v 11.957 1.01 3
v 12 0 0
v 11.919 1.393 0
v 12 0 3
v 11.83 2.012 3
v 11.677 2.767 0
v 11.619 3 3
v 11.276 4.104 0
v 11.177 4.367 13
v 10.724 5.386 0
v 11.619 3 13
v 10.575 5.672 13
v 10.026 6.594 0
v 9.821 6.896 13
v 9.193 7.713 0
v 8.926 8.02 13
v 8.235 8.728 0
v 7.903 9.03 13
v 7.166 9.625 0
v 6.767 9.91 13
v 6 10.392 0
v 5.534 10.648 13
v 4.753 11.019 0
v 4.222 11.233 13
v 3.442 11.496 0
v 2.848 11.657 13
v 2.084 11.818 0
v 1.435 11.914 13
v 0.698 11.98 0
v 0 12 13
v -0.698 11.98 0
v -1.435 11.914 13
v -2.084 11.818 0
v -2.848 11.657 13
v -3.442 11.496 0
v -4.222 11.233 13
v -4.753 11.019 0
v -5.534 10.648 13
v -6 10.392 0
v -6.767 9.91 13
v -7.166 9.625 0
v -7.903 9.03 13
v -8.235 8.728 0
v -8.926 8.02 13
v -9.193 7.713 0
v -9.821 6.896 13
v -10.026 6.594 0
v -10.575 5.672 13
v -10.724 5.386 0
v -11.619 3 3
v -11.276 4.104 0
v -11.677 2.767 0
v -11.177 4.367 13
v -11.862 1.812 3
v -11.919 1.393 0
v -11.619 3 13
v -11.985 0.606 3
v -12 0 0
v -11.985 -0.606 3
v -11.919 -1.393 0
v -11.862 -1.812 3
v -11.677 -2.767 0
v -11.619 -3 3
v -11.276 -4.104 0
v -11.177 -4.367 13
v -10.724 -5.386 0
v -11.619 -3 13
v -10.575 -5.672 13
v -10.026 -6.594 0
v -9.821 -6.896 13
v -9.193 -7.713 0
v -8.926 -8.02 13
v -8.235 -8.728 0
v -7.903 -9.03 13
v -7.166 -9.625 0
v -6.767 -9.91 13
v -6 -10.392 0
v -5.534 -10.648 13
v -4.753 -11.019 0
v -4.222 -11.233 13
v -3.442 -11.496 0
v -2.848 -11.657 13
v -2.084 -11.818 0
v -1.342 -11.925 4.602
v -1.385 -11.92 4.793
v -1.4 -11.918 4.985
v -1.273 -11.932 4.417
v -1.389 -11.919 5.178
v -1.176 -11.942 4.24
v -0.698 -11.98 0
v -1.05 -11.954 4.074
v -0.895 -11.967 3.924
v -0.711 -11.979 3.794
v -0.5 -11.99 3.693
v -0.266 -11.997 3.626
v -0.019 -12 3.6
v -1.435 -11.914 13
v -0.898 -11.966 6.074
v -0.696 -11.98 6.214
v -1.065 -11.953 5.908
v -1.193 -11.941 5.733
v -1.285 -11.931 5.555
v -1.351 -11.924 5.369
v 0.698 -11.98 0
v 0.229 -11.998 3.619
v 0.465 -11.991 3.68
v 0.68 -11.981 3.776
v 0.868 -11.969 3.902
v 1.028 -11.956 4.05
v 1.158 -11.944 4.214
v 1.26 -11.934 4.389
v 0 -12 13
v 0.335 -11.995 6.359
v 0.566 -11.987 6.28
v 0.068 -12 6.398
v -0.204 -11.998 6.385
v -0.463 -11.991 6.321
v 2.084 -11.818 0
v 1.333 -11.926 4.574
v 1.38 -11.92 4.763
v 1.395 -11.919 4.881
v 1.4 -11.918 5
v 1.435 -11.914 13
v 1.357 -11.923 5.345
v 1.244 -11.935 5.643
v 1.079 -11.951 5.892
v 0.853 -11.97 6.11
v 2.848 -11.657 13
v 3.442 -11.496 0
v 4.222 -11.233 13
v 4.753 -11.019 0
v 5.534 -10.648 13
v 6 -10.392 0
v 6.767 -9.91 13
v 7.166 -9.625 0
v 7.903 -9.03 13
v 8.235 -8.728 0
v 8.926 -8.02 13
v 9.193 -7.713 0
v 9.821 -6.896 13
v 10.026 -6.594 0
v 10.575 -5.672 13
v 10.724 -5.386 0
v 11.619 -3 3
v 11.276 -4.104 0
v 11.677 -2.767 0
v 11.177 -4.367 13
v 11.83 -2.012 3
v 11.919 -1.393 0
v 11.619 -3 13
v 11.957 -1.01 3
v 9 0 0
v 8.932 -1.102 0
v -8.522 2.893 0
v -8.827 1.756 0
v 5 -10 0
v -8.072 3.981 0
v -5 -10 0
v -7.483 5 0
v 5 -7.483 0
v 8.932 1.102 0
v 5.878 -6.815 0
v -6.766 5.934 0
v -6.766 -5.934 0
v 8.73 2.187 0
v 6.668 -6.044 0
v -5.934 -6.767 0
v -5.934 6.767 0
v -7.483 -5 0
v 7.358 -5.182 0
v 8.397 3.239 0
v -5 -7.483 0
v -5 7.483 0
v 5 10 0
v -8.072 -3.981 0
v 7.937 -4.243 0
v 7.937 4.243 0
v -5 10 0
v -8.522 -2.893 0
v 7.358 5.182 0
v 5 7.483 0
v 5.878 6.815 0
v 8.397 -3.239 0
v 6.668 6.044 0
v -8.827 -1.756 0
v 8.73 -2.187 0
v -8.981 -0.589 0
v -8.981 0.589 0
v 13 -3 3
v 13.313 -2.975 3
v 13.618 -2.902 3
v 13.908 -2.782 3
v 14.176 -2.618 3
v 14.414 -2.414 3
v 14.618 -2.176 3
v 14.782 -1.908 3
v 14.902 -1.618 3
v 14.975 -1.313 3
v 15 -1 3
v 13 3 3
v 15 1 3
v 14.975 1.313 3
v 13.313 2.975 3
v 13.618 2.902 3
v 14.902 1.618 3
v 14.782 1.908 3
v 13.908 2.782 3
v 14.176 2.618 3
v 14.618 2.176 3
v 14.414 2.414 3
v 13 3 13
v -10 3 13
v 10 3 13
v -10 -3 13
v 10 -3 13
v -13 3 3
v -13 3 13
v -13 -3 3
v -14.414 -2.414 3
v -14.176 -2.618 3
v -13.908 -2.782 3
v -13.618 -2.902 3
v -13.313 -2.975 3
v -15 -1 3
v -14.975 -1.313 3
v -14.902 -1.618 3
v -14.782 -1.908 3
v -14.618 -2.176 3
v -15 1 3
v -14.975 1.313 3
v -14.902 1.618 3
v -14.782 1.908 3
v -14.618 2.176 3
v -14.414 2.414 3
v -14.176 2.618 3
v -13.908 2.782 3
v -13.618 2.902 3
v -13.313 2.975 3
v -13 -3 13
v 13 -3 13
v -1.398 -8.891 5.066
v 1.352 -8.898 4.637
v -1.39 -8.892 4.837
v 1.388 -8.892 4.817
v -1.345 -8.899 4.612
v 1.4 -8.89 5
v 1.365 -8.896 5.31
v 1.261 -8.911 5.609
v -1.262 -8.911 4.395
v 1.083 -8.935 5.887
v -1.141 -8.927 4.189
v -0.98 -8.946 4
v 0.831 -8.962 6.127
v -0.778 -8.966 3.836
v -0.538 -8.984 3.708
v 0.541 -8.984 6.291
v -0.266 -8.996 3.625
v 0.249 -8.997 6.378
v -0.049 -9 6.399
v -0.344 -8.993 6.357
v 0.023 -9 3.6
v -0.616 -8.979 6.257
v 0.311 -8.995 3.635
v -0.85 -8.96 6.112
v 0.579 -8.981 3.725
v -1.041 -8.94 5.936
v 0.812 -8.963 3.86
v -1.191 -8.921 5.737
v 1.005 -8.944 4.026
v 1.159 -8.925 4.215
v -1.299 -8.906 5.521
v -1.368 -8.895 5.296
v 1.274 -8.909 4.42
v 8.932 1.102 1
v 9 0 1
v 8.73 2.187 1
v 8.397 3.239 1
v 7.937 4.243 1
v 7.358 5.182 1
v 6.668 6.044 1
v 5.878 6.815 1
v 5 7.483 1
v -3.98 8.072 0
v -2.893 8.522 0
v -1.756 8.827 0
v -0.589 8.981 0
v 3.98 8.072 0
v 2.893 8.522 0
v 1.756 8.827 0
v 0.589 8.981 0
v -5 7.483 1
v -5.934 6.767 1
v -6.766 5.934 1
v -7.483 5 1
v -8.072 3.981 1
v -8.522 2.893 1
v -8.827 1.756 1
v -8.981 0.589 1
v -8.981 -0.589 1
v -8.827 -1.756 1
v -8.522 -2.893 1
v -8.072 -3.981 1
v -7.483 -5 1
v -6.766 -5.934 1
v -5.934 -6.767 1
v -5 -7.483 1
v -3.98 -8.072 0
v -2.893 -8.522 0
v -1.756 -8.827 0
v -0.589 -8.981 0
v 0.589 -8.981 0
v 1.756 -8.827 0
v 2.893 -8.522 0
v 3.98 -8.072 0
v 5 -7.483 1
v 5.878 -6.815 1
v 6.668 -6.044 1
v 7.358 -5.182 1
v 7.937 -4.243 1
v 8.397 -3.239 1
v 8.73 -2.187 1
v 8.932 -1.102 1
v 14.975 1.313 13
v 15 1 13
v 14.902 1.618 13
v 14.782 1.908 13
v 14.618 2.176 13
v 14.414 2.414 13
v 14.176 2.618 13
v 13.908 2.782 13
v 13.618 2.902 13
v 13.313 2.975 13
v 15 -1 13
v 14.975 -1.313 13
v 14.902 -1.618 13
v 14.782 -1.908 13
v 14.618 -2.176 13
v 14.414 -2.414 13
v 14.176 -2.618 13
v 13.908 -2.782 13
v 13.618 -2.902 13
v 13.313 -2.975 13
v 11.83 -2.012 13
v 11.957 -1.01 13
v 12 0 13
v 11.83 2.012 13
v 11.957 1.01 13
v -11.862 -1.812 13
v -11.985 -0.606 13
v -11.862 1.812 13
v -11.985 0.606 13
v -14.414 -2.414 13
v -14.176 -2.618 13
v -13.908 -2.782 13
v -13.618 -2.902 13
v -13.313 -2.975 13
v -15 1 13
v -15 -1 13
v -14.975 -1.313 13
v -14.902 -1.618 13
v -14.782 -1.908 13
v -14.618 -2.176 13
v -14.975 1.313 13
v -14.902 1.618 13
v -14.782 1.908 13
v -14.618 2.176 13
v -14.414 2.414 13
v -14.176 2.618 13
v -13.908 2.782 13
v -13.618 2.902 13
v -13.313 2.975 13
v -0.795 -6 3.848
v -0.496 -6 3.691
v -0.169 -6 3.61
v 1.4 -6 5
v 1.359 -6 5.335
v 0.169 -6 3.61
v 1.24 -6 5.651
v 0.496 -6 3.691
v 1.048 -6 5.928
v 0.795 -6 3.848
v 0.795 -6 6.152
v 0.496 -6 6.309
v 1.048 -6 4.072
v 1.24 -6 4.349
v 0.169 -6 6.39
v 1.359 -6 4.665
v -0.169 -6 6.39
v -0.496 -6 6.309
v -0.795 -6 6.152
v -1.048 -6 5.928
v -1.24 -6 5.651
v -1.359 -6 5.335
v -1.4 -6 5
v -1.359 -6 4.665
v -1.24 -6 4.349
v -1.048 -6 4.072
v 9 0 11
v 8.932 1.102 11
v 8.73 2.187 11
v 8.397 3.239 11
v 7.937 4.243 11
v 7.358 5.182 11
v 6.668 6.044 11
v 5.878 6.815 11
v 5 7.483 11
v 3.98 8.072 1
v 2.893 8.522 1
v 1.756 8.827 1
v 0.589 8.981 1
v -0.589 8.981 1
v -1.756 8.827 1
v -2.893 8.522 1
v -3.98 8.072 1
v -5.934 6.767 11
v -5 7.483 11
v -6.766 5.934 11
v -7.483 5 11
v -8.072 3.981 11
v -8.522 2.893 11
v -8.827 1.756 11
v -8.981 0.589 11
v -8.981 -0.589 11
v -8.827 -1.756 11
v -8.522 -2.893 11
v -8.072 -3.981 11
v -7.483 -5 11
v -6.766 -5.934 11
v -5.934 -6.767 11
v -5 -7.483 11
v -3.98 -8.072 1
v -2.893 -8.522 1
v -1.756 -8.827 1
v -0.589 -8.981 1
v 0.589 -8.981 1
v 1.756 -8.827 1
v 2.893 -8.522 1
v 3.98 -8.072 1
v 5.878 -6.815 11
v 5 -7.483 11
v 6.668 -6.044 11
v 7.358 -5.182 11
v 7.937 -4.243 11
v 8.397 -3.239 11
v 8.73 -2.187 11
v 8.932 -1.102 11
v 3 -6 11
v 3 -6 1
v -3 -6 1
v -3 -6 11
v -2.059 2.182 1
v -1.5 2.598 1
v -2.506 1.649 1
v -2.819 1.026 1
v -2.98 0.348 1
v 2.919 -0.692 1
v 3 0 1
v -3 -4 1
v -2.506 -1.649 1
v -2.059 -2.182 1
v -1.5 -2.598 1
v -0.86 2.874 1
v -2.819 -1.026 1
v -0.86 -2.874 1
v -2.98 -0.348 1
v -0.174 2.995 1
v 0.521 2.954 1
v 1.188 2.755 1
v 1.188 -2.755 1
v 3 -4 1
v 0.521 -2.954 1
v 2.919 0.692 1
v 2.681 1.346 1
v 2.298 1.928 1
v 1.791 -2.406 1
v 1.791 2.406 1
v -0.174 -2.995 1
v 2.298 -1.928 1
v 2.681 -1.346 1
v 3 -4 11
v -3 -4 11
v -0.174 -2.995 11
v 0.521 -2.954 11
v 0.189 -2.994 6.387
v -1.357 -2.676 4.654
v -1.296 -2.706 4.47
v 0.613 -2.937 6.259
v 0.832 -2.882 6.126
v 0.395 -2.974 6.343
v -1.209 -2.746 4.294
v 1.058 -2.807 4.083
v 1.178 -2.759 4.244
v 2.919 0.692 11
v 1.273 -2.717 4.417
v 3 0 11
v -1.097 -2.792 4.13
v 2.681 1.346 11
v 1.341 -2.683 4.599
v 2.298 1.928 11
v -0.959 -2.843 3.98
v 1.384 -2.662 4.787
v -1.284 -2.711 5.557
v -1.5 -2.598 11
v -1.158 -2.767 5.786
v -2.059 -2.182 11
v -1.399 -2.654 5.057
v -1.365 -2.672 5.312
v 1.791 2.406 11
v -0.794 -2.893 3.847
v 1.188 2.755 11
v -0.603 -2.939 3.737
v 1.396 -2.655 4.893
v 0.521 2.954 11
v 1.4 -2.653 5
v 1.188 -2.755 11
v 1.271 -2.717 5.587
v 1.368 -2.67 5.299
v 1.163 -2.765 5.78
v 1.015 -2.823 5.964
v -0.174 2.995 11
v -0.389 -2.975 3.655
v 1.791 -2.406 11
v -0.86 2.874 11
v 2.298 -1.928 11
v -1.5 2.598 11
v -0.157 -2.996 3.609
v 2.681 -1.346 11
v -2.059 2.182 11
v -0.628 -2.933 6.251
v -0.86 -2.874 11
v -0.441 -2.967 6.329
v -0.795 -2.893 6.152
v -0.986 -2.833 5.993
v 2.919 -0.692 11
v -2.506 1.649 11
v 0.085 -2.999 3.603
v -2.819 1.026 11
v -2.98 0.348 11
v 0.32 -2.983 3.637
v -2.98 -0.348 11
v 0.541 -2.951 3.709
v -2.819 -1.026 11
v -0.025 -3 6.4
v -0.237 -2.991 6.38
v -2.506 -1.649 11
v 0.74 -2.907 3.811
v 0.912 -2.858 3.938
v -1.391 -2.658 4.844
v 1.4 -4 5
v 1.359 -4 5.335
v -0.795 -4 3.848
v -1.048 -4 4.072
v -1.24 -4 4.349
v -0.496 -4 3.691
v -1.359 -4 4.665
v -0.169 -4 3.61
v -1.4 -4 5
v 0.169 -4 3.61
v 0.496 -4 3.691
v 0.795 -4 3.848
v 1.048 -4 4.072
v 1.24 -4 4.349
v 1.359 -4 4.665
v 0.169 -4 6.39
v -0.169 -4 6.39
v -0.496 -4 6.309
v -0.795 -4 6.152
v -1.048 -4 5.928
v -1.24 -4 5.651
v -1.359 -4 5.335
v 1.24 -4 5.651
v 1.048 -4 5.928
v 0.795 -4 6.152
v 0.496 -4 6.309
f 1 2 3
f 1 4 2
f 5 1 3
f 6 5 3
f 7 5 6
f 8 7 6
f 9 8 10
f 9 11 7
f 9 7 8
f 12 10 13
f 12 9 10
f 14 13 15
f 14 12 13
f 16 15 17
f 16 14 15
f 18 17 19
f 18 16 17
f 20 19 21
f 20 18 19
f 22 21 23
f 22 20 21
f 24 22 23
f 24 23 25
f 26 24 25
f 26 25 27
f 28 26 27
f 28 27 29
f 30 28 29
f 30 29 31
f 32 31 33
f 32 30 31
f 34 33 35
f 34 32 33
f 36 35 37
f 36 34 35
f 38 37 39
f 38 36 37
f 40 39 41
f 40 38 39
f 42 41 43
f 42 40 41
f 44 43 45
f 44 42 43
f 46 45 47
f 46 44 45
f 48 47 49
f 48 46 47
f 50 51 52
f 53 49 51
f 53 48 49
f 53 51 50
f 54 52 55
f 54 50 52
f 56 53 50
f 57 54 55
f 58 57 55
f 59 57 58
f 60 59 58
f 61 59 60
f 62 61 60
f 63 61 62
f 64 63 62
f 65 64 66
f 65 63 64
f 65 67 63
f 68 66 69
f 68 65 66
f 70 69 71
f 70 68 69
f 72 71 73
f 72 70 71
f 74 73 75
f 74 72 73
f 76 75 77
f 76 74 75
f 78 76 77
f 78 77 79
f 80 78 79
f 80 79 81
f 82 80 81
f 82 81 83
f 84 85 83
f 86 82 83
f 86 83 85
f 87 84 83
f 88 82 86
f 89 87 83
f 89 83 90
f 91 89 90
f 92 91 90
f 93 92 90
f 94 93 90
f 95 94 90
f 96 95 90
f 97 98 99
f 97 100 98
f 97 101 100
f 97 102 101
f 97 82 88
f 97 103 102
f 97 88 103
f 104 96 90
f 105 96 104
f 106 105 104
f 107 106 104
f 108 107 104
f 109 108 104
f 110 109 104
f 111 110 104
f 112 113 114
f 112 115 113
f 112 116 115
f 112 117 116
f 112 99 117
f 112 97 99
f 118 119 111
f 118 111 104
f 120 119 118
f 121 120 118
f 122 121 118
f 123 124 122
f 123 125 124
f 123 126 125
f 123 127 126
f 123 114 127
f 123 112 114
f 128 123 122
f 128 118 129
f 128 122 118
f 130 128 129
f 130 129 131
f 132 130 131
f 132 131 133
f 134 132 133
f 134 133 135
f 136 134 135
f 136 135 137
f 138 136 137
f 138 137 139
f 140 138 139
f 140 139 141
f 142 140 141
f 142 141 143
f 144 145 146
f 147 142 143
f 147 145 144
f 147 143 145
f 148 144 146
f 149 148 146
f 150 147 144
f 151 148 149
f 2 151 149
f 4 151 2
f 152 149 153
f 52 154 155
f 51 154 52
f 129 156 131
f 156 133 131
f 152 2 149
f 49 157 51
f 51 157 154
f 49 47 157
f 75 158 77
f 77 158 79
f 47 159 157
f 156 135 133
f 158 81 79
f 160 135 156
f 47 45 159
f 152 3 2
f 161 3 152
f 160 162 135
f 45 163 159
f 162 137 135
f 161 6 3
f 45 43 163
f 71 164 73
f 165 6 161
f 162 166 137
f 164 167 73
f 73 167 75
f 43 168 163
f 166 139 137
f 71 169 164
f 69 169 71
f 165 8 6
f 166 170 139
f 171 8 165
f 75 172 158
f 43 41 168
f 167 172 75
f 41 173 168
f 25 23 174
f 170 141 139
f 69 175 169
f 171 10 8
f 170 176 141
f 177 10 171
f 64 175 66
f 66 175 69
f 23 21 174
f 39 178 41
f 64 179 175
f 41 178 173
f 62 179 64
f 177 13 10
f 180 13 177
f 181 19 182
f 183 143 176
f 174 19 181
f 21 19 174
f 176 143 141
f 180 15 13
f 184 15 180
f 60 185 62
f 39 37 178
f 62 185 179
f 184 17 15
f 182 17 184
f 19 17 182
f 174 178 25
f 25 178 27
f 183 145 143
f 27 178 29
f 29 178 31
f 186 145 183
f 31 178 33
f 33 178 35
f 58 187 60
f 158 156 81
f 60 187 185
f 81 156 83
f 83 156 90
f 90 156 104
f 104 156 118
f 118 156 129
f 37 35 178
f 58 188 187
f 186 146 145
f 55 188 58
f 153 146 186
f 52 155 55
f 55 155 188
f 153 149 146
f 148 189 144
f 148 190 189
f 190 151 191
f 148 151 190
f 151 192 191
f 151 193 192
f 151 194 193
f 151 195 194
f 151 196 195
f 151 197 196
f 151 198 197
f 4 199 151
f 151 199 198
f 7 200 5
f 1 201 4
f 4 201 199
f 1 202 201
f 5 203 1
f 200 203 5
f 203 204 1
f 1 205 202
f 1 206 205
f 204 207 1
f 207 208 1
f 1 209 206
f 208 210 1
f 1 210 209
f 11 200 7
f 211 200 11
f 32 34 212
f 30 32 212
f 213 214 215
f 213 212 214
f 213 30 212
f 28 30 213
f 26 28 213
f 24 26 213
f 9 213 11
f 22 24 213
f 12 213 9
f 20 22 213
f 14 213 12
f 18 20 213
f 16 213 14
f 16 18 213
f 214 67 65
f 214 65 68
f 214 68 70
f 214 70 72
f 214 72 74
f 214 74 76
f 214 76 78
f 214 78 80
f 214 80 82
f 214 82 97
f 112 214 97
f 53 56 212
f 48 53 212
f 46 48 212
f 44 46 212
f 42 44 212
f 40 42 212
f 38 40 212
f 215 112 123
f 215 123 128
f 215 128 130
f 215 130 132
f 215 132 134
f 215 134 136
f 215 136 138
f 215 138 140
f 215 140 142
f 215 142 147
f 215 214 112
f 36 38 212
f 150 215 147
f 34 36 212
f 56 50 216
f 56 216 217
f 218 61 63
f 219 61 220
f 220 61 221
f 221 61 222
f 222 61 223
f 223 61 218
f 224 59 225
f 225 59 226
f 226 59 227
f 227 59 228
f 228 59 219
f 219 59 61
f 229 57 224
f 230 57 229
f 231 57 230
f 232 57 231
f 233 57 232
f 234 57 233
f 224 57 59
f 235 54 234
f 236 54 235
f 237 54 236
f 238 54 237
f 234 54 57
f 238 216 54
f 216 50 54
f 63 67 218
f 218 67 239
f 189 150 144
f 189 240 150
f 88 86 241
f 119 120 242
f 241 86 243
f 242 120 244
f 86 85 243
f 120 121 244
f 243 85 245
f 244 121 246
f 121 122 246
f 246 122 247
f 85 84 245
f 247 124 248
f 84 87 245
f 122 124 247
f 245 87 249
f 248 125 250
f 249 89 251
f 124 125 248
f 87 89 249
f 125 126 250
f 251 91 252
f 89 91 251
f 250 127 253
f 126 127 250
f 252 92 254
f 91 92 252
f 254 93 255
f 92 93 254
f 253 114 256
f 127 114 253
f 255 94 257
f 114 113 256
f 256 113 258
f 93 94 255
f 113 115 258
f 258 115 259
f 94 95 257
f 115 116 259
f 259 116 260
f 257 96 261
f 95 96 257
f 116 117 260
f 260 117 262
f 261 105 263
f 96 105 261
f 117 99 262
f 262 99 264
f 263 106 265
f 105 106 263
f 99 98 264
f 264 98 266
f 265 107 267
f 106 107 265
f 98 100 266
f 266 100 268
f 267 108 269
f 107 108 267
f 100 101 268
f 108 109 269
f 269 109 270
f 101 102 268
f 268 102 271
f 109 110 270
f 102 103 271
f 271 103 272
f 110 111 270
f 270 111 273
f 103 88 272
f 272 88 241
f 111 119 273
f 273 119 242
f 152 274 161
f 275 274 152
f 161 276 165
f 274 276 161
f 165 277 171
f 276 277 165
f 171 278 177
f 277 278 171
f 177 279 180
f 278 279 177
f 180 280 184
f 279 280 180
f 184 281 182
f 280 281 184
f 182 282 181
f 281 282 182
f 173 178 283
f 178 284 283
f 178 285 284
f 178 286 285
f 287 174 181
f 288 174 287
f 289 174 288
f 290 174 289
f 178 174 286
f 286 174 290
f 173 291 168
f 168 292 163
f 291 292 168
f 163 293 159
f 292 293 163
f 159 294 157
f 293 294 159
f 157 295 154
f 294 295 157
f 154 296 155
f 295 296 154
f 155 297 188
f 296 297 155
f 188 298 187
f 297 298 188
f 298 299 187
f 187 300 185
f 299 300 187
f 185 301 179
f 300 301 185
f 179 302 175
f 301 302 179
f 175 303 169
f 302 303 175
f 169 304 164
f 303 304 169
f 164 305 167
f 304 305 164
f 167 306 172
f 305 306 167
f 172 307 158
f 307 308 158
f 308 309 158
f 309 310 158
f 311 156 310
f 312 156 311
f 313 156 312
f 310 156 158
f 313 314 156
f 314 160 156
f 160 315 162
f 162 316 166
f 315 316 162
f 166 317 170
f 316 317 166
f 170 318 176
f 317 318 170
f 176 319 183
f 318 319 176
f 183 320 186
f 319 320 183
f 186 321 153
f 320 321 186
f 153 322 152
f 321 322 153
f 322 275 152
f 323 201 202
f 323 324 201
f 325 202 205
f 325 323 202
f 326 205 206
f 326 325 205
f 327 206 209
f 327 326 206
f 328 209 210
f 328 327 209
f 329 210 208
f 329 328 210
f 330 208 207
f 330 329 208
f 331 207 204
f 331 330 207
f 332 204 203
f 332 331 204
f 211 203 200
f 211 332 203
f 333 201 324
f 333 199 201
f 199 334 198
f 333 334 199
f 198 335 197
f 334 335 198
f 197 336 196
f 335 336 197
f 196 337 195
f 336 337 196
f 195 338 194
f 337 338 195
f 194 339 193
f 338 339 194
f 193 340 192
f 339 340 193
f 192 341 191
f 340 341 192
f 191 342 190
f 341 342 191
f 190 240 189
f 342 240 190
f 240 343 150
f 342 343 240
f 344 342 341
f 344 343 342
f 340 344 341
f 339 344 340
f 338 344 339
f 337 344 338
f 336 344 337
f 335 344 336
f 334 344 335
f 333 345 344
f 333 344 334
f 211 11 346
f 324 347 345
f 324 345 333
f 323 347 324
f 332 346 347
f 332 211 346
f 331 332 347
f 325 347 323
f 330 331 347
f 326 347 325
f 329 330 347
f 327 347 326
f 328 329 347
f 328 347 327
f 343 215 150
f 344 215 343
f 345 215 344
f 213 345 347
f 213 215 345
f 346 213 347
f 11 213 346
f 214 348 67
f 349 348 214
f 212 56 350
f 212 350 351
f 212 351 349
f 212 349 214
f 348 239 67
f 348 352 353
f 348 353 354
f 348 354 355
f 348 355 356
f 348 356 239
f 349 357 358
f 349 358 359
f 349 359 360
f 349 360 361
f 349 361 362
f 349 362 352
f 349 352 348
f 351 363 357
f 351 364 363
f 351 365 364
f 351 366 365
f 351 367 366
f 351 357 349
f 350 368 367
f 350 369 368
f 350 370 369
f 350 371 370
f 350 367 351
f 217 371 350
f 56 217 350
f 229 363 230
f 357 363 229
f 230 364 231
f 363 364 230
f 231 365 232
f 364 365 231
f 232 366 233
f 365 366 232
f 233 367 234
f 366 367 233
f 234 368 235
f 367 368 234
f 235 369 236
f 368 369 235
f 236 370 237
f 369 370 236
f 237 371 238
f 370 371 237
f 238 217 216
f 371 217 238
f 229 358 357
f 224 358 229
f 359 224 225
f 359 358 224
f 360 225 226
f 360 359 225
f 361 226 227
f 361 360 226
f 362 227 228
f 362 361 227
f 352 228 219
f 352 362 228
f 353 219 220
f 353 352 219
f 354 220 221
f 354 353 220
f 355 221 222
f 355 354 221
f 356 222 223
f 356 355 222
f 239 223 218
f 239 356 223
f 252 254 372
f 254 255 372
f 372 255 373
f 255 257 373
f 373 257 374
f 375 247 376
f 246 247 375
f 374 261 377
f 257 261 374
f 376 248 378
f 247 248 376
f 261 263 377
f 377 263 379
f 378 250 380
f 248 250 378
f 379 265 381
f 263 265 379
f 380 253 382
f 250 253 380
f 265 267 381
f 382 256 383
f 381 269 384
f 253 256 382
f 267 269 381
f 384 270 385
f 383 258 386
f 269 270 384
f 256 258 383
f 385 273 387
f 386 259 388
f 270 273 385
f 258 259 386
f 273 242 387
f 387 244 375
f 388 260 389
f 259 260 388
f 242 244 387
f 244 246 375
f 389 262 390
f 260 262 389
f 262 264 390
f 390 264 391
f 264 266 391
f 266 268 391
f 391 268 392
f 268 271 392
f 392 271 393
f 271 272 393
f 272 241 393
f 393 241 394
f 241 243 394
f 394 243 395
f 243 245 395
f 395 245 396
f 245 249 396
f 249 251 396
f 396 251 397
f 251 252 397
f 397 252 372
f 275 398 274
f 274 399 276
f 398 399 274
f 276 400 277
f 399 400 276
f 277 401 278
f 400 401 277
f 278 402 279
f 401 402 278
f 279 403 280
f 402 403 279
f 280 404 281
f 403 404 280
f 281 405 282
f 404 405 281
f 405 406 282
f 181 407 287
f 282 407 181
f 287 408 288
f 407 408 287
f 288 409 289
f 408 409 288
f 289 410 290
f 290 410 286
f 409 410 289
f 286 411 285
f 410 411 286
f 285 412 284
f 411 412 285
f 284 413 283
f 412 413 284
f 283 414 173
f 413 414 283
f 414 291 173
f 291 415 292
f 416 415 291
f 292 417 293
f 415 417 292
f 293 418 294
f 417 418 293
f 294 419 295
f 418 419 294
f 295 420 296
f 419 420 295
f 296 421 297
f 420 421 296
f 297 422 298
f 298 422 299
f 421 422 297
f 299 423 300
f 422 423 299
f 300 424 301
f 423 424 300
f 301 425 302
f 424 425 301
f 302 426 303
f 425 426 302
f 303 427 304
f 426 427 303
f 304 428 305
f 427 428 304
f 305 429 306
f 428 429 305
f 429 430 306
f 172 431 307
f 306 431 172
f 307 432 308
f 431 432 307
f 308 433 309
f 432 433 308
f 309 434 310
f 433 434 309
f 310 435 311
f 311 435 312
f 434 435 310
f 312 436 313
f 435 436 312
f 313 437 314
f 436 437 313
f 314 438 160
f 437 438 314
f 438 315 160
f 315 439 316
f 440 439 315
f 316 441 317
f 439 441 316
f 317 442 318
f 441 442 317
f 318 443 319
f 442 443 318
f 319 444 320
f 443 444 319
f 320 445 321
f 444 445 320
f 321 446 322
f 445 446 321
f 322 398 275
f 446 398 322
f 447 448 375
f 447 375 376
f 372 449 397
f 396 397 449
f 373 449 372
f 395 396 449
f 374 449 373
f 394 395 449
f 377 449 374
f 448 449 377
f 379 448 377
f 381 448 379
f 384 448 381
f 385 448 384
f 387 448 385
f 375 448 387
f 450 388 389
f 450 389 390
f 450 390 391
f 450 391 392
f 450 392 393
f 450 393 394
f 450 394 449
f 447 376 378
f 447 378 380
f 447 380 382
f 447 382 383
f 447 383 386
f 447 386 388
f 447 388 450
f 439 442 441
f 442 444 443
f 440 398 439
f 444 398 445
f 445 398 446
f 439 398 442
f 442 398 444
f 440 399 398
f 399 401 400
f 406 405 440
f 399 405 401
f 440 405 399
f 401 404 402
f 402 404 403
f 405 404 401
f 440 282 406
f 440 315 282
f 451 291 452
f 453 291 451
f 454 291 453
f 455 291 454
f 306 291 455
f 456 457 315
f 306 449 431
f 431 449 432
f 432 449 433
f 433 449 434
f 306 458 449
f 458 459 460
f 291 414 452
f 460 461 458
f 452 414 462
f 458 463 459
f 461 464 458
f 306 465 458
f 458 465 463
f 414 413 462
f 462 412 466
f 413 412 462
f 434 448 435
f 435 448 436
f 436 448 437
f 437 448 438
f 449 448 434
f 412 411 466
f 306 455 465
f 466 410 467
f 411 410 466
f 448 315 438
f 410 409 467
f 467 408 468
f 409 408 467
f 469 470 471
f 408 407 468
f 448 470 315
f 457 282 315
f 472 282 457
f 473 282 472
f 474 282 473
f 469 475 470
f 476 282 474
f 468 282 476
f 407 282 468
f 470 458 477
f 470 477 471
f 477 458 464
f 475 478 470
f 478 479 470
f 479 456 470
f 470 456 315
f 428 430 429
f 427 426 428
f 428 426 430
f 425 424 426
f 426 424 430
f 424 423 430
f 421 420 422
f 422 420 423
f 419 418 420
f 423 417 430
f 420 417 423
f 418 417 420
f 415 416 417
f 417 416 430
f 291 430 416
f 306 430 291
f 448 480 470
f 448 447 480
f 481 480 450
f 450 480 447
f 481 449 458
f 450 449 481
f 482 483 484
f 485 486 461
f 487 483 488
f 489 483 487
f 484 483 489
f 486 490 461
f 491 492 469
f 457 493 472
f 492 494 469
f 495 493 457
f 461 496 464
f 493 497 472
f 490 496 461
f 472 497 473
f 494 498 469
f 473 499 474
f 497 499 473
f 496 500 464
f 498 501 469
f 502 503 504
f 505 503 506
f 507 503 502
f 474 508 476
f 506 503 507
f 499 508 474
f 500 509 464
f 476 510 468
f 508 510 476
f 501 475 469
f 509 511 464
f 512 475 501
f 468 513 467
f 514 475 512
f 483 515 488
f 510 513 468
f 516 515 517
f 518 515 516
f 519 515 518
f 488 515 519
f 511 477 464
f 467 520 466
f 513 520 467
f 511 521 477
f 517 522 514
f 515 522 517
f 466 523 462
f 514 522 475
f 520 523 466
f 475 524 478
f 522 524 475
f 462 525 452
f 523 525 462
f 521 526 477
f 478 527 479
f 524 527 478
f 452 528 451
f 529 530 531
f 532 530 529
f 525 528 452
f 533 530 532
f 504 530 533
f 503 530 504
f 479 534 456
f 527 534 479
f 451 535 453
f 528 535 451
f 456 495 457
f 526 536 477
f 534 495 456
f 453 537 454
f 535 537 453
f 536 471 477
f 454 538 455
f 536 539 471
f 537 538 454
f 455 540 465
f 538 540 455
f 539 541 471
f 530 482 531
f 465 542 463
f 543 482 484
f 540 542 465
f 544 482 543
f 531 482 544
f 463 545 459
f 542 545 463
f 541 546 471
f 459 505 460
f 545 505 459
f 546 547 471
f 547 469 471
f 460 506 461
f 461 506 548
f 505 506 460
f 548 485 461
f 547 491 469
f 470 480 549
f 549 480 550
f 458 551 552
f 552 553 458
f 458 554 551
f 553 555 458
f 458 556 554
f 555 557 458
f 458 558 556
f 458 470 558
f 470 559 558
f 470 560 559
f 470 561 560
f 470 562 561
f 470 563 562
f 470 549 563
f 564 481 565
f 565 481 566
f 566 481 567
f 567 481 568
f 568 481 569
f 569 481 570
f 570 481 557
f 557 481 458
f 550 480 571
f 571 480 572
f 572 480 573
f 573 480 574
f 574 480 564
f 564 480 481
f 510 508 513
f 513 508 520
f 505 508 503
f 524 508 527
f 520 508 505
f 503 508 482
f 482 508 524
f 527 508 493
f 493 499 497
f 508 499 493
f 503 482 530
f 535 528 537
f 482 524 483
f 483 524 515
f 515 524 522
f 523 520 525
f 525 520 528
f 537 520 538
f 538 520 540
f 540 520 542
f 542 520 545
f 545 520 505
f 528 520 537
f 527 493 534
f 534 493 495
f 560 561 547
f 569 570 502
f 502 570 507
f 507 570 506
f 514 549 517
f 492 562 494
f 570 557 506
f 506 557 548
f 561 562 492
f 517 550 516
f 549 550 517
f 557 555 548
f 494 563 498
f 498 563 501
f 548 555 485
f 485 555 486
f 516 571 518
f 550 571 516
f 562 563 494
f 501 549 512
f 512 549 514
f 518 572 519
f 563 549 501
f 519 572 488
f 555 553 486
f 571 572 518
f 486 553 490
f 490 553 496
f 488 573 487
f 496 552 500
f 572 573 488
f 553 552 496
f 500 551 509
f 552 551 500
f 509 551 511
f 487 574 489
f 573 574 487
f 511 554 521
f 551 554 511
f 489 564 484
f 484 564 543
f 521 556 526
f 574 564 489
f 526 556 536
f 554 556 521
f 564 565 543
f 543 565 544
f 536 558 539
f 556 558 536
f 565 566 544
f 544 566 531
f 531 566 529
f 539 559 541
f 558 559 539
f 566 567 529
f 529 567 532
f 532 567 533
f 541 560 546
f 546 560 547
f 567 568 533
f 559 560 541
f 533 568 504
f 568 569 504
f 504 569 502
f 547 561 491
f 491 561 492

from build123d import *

# Parameters (mm, degrees)
BOX003_W          = 5
BOX003_H          = 6
BOX003_DEPTH      = 10
FILLET_R          = 2
BOX002_W          = 5
BOX002_H          = 6
BOX002_DEPTH      = 10
FILLET001_R       = 2
CYLINDER005_R     = 1.4
CYLINDER005_DEPTH = 11
CYLINDER004_R     = 9
CYLINDER004_DEPTH = 1
CYLINDER003_R     = 1.4
CYLINDER003_DEPTH = 11
BOX001_W          = 6
BOX001_H          = 2
BOX001_DEPTH      = 12
CYLINDER002_R     = 3
CYLINDER002_DEPTH = 12
BOX_W             = 10
BOX_H             = 20
BOX_DEPTH         = 12
CYLINDER001_R     = 9
CYLINDER001_DEPTH = 11
CYLINDER_R        = 12
CYLINDER_DEPTH    = 13


with BuildPart() as fillet_body:
    # Box003 → Box003 (new body)
    with BuildSketch(Plane(origin=(-15, -3, 3), x_dir=(1, 0, 0), z_dir=(0, 0, 1))):
        with Locations((2.5, 3)):
            Rectangle(BOX003_W, BOX003_H)
    extrude(amount=BOX003_DEPTH)

    # Fillet
    fillet_edges = [fillet_body.edges().sort_by_distance(p)[0] for p in [
        (-15, -3, 8),
        (-15, 3, 8),
    ]]
    fillet(fillet_edges, radius=FILLET_R)


with BuildPart() as fillet001:
    # Box002 → Box002 (new body)
    with BuildSketch(Plane(origin=(10, -3, 3), x_dir=(1, 0, 0), z_dir=(0, 0, 1))):
        with Locations((2.5, 3)):
            Rectangle(BOX002_W, BOX002_H)
    extrude(amount=BOX002_DEPTH)

    # Fillet001
    fillet001_edges = [fillet001.edges().sort_by_distance(p)[0] for p in [
        (15, -3, 8),
        (15, 3, 8),
    ]]
    fillet(fillet001_edges, radius=FILLET001_R)


with BuildPart() as cylinder005:
    # Cylinder005 → Cylinder005 (new body)
    with BuildSketch(Plane(origin=(0, -2, 5), x_dir=(1, 0, 0), z_dir=(0, -1, 0))):
        Circle(CYLINDER005_R)
    extrude(amount=CYLINDER005_DEPTH)


with BuildPart() as cylinder004:
    # Cylinder004 → Cylinder004 (new body)
    with BuildSketch(Plane.XY):
        Circle(CYLINDER004_R)
    extrude(amount=CYLINDER004_DEPTH)


with BuildPart() as cylinder003:
    # Cylinder003 → Cylinder003 (new body)
    with BuildSketch(Plane(origin=(0, -2, 5), x_dir=(1, 0, 0), z_dir=(0, -1, 0))):
        Circle(CYLINDER003_R)
    extrude(amount=CYLINDER003_DEPTH)


with BuildPart() as cube001:
    # Box001 → Box001 (new body)
    with BuildSketch(Plane(origin=(-3, -6, 0), x_dir=(1, 0, 0), z_dir=(0, 0, 1))):
        with Locations((3, 1)):
            Rectangle(BOX001_W, BOX001_H)
    extrude(amount=BOX001_DEPTH)


with BuildPart() as cylinder002:
    # Cylinder002 → Cylinder002 (new body)
    with BuildSketch(Plane.XY):
        Circle(CYLINDER002_R)
    extrude(amount=CYLINDER002_DEPTH)


with BuildPart() as cut003:
    # Box → Box (new body)
    with BuildSketch(Plane(origin=(-5, -10, 0), x_dir=(1, 0, 0), z_dir=(0, 0, 1))):
        with Locations((5, 10)):
            Rectangle(BOX_W, BOX_H)
    extrude(amount=BOX_DEPTH)

    # Cut001: cut Cylinder002
    add(cylinder002.part, mode=Mode.SUBTRACT)

    # Cut002: cut Cube001
    add(cube001.part, mode=Mode.SUBTRACT)

    # Cut003: cut Cylinder003
    add(cylinder003.part, mode=Mode.SUBTRACT)


with BuildPart() as cylinder001:
    # Cylinder001 → Cylinder001 (new body)
    with BuildSketch(Plane.XY):
        Circle(CYLINDER001_R)
    extrude(amount=CYLINDER001_DEPTH)


with BuildPart() as fusion001:
    # Cylinder → Cylinder (new body)
    with BuildSketch(Plane.XY):
        Circle(CYLINDER_R)
    extrude(amount=CYLINDER_DEPTH)

    # Cut: cut Cylinder001
    add(cylinder001.part, mode=Mode.SUBTRACT)

    # Fusion: union Cut003
    add(cut003.part)

    # Cut004: cut Cylinder004
    add(cylinder004.part, mode=Mode.SUBTRACT)

    # Cut005: cut Cylinder005
    add(cylinder005.part, mode=Mode.SUBTRACT)

    # Fusion001: union Fillet body, Fillet001
    add(fillet_body.part)
    add(fillet001.part)


solid = fusion001.part
